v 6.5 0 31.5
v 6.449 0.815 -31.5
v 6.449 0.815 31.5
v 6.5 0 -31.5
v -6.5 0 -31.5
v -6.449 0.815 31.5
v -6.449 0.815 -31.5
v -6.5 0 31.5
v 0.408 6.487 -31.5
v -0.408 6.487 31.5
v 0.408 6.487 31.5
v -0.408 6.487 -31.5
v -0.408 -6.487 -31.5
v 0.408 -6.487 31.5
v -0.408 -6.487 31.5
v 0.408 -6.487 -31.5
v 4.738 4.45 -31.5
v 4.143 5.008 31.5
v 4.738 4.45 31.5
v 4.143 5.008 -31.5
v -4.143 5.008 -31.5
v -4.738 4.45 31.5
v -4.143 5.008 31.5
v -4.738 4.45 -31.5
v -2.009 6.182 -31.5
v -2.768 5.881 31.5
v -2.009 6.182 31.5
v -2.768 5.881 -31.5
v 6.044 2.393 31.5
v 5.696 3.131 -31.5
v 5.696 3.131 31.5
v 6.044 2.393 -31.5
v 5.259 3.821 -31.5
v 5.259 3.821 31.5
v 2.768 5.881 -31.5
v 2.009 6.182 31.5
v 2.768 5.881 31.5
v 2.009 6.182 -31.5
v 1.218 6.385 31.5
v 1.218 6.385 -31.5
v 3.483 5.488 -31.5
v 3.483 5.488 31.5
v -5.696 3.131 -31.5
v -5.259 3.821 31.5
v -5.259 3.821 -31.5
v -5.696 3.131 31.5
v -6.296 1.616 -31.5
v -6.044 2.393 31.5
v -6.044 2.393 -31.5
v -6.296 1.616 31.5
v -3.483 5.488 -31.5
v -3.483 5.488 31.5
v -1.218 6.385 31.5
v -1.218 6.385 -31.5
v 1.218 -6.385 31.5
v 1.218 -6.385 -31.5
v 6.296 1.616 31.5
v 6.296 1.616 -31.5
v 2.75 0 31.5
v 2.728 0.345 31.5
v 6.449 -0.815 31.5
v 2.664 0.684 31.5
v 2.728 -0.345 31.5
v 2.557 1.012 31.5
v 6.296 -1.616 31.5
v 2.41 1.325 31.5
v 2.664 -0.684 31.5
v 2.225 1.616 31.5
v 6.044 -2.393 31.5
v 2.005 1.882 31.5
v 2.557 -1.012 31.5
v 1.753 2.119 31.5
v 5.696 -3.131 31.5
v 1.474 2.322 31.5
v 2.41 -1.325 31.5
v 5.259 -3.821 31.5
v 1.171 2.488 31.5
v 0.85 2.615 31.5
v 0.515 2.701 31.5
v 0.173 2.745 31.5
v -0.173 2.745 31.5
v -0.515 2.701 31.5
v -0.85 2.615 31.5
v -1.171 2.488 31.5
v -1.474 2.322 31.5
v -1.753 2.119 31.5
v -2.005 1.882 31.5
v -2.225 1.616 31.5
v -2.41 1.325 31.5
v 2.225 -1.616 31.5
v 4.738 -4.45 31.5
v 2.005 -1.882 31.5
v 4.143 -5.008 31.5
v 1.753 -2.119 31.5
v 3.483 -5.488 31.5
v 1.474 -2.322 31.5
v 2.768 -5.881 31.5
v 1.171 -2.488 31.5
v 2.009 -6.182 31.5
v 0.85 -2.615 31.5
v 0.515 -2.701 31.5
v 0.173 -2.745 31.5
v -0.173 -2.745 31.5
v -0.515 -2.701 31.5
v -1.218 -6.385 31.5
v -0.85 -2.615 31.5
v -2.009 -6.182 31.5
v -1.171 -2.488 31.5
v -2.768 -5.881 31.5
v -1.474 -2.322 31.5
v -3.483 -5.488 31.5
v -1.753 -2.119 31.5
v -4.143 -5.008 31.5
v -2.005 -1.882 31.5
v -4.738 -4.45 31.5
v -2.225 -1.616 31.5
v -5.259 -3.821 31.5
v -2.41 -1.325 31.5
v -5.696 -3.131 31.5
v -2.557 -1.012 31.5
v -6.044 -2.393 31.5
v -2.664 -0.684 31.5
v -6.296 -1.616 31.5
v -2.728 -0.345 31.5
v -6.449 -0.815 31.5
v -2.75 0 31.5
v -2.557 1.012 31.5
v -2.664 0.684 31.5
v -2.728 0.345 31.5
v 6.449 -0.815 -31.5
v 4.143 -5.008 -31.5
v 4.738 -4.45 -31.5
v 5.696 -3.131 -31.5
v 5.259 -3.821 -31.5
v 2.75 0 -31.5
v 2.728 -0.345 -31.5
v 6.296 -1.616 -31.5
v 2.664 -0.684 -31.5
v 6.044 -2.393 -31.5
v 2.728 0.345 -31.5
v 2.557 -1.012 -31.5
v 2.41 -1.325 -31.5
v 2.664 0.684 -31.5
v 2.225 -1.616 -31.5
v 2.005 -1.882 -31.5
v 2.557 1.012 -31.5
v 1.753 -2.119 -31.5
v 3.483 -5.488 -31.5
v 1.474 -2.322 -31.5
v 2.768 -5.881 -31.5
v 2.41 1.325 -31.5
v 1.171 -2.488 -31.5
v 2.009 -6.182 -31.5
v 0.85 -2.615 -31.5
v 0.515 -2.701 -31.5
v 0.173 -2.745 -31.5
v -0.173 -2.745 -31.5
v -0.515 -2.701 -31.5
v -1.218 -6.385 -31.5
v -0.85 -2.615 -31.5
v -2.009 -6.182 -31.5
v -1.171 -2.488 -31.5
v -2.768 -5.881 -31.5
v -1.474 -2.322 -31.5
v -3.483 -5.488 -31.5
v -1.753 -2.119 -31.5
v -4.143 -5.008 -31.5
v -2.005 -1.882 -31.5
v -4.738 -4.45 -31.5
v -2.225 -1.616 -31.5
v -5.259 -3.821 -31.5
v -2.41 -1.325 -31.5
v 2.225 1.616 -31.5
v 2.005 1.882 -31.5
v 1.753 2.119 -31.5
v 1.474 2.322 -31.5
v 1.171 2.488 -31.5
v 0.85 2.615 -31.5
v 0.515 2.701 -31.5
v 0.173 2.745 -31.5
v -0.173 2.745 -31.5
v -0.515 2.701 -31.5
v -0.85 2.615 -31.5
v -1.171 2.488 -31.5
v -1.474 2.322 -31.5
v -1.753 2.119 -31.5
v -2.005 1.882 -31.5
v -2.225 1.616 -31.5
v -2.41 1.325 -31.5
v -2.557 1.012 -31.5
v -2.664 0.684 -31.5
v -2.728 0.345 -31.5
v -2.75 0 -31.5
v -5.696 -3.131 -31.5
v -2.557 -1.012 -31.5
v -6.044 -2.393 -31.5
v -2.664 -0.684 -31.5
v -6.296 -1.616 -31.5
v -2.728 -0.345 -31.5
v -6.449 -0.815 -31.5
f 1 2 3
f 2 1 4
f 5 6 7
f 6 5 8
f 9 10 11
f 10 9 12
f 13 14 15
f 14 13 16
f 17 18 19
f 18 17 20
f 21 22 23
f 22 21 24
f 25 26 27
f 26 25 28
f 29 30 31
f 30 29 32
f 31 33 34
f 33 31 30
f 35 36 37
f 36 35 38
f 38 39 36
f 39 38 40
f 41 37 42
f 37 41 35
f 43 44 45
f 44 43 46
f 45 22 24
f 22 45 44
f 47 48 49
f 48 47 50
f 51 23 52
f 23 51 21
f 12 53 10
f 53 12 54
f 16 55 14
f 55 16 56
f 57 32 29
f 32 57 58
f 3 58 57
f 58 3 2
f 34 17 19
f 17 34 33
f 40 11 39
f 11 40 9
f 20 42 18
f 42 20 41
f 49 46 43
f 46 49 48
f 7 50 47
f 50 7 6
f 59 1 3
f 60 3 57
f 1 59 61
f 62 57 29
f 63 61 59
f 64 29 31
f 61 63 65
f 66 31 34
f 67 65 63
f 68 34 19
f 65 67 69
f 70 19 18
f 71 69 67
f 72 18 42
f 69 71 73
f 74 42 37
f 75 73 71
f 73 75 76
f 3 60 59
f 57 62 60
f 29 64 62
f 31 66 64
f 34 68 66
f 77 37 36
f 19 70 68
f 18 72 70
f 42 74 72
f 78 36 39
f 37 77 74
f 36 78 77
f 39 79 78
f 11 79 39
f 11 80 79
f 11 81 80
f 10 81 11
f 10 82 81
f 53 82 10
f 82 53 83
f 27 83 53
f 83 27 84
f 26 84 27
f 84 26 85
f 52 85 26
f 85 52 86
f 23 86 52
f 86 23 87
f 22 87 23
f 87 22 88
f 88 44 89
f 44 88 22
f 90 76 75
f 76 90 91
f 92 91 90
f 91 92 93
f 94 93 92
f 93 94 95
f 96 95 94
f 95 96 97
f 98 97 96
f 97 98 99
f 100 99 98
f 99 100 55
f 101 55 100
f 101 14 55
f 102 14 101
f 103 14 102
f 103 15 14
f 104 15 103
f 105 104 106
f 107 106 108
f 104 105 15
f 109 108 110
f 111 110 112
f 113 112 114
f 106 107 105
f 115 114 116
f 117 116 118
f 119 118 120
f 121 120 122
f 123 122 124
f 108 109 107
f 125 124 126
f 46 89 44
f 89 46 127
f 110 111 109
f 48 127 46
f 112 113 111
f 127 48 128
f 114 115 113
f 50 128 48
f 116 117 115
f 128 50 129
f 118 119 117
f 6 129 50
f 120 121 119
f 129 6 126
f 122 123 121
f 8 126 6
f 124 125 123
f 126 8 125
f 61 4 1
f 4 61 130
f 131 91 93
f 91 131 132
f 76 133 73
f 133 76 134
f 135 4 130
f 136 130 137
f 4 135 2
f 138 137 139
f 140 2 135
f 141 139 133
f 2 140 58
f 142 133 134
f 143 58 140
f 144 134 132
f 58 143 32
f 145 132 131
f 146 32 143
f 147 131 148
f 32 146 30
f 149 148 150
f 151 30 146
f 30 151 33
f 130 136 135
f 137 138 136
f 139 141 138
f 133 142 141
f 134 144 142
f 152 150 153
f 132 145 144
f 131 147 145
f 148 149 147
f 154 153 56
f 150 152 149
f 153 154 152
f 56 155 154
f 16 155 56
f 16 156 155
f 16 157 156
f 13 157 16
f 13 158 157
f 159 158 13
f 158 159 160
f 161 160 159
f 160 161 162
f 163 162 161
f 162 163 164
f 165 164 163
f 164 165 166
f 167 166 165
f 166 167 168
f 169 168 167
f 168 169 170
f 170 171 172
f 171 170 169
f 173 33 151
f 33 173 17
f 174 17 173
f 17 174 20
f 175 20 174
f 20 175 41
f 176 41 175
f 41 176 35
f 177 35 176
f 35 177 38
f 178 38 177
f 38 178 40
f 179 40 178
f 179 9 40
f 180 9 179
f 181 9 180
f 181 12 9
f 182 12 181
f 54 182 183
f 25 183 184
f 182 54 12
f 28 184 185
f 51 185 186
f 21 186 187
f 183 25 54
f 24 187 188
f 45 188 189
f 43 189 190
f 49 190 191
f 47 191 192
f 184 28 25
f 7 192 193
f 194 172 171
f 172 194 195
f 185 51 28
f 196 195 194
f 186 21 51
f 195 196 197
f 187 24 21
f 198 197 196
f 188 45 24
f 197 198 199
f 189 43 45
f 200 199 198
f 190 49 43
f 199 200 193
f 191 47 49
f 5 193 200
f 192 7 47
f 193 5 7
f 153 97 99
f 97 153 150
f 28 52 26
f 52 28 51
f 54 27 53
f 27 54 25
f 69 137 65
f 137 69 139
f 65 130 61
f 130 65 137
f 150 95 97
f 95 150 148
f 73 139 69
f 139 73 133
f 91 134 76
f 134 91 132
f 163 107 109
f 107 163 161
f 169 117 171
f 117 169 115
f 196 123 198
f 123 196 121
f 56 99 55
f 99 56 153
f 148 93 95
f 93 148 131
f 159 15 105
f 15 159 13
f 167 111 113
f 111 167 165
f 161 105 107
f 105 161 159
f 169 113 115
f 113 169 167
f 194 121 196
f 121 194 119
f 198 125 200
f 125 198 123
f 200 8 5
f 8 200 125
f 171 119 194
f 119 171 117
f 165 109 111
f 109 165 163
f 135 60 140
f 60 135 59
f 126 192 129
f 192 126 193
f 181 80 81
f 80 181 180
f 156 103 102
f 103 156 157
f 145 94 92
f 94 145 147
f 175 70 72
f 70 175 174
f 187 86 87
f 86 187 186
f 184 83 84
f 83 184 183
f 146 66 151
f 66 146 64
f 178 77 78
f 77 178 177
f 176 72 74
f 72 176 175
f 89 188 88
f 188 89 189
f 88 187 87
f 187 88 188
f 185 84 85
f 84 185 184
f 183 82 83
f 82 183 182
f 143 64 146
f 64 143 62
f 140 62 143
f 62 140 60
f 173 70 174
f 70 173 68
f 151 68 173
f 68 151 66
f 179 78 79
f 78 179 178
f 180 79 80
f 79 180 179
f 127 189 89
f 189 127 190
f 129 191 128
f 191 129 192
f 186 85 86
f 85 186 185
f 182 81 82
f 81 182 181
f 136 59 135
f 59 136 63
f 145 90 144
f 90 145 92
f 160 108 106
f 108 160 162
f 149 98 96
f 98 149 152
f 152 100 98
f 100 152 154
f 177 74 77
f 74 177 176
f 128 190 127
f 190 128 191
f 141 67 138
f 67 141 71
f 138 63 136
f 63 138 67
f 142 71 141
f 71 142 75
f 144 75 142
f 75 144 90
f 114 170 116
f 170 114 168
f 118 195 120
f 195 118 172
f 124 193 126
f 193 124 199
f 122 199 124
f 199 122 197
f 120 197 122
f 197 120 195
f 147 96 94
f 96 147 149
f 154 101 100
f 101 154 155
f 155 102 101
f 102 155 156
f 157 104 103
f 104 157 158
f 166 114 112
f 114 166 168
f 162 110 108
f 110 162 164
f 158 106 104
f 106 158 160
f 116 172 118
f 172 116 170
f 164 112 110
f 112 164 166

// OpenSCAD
$fn = 50;


difference() {
	union() {
		translate(v = [0, 0, -31.5000000000]) {
			cylinder(h = 63, r = 6.5000000000);
		}
	}
	union() {
		translate(v = [0, 0, -100.0000000000]) {
			cylinder(h = 200, r = 2.7500000000);
		}
	}
}
